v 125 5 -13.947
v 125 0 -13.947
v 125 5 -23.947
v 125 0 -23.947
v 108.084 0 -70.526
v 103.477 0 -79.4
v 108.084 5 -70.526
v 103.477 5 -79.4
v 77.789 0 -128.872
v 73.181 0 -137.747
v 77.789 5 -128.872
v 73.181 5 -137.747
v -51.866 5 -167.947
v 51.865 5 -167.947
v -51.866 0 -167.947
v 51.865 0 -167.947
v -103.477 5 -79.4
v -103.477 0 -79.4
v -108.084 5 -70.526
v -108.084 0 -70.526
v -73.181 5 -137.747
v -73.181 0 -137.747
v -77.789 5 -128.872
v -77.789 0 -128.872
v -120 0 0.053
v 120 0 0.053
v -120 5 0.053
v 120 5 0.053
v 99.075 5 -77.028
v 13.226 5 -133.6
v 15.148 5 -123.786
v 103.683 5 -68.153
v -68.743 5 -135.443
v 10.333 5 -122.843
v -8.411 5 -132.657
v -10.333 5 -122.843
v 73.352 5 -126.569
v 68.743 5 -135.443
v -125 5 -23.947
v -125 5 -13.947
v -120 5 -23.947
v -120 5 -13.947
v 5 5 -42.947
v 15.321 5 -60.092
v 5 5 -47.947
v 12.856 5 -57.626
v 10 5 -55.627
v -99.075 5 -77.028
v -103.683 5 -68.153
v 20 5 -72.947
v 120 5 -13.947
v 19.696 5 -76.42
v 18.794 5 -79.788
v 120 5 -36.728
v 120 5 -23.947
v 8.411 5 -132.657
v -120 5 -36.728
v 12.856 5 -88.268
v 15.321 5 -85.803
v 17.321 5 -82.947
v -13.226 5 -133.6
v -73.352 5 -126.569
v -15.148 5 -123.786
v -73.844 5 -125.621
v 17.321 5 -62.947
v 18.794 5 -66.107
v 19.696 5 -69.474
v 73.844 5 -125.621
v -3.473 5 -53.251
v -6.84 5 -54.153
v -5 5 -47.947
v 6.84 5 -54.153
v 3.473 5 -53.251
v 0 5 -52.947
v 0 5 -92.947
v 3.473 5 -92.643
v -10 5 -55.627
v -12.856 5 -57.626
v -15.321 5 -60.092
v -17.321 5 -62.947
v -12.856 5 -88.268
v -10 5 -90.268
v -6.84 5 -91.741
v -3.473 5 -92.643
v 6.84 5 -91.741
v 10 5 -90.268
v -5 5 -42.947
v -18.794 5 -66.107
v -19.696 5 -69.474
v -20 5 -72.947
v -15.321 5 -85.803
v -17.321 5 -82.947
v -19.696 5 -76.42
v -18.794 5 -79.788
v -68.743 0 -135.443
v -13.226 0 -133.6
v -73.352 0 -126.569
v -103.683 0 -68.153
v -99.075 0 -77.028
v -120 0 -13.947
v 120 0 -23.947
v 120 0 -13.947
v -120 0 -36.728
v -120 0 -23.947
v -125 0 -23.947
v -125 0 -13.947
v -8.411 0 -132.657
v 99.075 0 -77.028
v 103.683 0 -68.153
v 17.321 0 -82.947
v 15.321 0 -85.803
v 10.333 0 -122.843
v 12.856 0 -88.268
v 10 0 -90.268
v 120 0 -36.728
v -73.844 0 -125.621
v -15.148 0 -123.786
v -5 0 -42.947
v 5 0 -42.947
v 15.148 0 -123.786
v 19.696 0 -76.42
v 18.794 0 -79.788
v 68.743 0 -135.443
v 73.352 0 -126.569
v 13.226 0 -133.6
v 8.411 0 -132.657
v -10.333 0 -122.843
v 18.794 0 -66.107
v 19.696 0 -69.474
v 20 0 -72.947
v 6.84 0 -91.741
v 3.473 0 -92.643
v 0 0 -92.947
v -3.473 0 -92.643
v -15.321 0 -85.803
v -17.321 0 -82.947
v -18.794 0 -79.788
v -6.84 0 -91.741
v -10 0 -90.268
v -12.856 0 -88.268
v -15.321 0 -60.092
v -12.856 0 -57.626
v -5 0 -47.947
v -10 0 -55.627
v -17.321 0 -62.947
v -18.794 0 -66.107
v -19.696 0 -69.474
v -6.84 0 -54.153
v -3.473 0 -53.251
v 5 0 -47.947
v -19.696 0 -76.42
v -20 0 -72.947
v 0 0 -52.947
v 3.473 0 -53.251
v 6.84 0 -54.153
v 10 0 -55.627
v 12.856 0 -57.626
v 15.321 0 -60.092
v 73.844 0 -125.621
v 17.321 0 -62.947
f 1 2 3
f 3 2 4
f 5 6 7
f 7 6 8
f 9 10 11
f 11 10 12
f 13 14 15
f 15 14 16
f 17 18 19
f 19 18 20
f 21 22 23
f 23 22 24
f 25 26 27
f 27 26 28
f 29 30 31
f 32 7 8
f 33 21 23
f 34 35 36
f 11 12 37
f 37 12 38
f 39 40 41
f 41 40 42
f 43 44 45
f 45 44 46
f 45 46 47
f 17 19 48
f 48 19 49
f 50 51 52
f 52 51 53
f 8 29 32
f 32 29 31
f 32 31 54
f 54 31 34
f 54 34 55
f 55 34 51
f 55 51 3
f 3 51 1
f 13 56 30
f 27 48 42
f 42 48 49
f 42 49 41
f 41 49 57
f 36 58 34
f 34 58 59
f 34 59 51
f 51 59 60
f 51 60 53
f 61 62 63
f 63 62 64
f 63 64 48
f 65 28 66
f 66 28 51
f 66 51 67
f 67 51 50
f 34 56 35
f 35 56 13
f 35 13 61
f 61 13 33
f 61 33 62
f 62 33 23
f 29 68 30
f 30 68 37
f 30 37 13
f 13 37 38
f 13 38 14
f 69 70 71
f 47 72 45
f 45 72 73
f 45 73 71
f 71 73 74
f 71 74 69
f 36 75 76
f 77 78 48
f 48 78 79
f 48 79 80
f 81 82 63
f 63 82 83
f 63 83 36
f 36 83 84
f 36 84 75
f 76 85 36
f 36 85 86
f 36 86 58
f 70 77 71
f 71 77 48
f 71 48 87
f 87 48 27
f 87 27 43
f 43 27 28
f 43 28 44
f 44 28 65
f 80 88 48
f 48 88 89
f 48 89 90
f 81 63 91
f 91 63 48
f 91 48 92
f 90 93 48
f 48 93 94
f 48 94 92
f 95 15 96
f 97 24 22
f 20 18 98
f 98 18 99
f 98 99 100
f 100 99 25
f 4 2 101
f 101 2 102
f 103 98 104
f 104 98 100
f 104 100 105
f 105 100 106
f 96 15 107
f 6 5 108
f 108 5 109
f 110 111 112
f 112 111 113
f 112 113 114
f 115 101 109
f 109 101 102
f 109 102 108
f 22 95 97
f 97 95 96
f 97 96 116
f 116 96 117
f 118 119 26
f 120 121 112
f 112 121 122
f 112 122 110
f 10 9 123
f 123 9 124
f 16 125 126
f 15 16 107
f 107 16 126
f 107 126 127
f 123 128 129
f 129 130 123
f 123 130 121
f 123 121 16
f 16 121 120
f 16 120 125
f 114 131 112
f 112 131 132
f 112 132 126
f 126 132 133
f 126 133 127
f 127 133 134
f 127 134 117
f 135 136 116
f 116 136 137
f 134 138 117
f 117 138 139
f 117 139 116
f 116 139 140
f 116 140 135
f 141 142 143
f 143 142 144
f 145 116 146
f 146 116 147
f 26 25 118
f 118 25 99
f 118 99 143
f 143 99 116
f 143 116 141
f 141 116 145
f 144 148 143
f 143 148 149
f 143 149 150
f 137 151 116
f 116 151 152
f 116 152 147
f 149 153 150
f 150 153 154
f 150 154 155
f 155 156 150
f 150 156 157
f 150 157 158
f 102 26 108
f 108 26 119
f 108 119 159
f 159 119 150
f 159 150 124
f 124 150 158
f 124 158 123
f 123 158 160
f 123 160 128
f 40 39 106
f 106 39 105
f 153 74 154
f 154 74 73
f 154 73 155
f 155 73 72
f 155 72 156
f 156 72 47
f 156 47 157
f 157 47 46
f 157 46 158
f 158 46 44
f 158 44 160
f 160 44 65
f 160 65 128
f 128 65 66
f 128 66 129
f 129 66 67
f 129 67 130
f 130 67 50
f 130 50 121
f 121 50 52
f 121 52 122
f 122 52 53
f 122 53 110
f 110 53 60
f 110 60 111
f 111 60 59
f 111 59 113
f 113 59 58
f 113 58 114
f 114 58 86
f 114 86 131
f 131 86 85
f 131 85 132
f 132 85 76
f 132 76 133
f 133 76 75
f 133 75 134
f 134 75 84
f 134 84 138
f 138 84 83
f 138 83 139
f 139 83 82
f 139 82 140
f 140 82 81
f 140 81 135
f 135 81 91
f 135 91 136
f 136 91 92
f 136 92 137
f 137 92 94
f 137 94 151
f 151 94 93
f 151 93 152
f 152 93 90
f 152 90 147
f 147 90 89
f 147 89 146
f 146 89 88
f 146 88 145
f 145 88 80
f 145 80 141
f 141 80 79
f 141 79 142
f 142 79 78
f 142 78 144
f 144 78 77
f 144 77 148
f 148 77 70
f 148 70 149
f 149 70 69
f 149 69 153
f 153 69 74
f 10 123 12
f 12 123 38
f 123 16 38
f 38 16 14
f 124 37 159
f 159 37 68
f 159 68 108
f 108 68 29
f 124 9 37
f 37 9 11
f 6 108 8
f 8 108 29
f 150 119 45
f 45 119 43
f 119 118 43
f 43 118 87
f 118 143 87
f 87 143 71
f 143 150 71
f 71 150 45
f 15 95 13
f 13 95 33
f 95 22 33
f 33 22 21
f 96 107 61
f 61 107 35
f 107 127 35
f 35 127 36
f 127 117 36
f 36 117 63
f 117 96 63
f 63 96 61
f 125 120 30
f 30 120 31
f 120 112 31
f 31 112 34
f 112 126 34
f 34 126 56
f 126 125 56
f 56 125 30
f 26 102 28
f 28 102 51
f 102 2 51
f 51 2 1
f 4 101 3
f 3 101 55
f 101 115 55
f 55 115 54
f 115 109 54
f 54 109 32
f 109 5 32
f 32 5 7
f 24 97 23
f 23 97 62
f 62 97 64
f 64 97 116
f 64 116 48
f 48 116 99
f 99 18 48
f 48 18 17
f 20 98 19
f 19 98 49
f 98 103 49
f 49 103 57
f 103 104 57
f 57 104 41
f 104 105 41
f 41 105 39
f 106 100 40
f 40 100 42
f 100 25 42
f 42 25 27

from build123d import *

# Parameters (mm, degrees)
BOSS_EXTRUDE1_DEPTH = 5
SKETCH2_W           = 5
SKETCH2_H           = 14
SKETCH2_W_2         = 10
SKETCH2_H_2         = 5
SKETCH2_R           = 20
CUT_EXTRUDE1_DEPTH  = 210.418973113


with BuildPart() as part:
    # Sketch1 → Boss-Extrude1 (new body)
    with BuildSketch(Plane(origin=(0, 0, 0), x_dir=(1, 0, 0), z_dir=(0, 1, 0))):
        Polygon((-57.5, 167.947331922), (57.5, 167.947331922), (125, 37.947331922), (125, -0.052668078), (-125, -0.052668078), (-125, 37.947331922), align=None)
    extrude(amount=BOSS_EXTRUDE1_DEPTH)

    # Sketch2 → Cut-Extrude1 (cut, through all)
    with BuildSketch(Plane(origin=(0, 5, 0), x_dir=(1, 0, 0), z_dir=(0, 1, 0))):
        Polygon((-77.788864465, 128.872481842), (-103.476511391, 79.39997665), (-99.075067661, 77.027785029), (-73.843707474, 125.621215804), (-73.351788432, 126.56861544), align=None)
        Polygon((-125, 37.947331922), (-125, 23.947331922), (-120, 23.947331922), (-120, 36.728164098), (-103.683242772, 68.152835894), (-108.083917213, 70.526454327), align=None)
        with Locations((-122.5, 6.947331922)):
            Rectangle(SKETCH2_W, SKETCH2_H)
        with Locations((0, 45.447331922)):
            Rectangle(SKETCH2_W_2, SKETCH2_H_2)
        Polygon((-8.411070301, 132.656760174), (-13.226399097, 133.599762064), (-15.148227411, 123.786170675), (-10.332898614, 122.843168786), align=None)
        Polygon((10.332898614, 122.843168786), (15.148227411, 123.786170675), (13.226399097, 133.599762064), (8.411070301, 132.656760174), align=None)
        Polygon((-73.180711758, 137.74744261), (-68.74270223, 135.443091446), (-51.865499988, 167.947331922), (-57.5, 167.947331922), align=None)
        Polygon((73.351788432, 126.56861544), (73.843707474, 125.621215804), (99.075067661, 77.027785029), (103.476511391, 79.39997665), (77.788864465, 128.872481842), align=None)
        Polygon((68.74270223, 135.443091446), (73.180711758, 137.74744261), (57.5, 167.947331922), (51.865499988, 167.947331922), align=None)
        with Locations((122.5, 6.947331922)):
            Rectangle(SKETCH2_W, SKETCH2_H)
        Polygon((125, 23.947331922), (125, 37.947331922), (108.083917213, 70.526454327), (103.683242772, 68.152835894), (120, 36.728164098), (120, 23.947331922), align=None)
        with Locations(Location((0, 72.947331922, 0), (0, 0, 270))):
            Circle(SKETCH2_R)
    extrude(amount=-CUT_EXTRUDE1_DEPTH, mode=Mode.SUBTRACT)


solid = part.part
